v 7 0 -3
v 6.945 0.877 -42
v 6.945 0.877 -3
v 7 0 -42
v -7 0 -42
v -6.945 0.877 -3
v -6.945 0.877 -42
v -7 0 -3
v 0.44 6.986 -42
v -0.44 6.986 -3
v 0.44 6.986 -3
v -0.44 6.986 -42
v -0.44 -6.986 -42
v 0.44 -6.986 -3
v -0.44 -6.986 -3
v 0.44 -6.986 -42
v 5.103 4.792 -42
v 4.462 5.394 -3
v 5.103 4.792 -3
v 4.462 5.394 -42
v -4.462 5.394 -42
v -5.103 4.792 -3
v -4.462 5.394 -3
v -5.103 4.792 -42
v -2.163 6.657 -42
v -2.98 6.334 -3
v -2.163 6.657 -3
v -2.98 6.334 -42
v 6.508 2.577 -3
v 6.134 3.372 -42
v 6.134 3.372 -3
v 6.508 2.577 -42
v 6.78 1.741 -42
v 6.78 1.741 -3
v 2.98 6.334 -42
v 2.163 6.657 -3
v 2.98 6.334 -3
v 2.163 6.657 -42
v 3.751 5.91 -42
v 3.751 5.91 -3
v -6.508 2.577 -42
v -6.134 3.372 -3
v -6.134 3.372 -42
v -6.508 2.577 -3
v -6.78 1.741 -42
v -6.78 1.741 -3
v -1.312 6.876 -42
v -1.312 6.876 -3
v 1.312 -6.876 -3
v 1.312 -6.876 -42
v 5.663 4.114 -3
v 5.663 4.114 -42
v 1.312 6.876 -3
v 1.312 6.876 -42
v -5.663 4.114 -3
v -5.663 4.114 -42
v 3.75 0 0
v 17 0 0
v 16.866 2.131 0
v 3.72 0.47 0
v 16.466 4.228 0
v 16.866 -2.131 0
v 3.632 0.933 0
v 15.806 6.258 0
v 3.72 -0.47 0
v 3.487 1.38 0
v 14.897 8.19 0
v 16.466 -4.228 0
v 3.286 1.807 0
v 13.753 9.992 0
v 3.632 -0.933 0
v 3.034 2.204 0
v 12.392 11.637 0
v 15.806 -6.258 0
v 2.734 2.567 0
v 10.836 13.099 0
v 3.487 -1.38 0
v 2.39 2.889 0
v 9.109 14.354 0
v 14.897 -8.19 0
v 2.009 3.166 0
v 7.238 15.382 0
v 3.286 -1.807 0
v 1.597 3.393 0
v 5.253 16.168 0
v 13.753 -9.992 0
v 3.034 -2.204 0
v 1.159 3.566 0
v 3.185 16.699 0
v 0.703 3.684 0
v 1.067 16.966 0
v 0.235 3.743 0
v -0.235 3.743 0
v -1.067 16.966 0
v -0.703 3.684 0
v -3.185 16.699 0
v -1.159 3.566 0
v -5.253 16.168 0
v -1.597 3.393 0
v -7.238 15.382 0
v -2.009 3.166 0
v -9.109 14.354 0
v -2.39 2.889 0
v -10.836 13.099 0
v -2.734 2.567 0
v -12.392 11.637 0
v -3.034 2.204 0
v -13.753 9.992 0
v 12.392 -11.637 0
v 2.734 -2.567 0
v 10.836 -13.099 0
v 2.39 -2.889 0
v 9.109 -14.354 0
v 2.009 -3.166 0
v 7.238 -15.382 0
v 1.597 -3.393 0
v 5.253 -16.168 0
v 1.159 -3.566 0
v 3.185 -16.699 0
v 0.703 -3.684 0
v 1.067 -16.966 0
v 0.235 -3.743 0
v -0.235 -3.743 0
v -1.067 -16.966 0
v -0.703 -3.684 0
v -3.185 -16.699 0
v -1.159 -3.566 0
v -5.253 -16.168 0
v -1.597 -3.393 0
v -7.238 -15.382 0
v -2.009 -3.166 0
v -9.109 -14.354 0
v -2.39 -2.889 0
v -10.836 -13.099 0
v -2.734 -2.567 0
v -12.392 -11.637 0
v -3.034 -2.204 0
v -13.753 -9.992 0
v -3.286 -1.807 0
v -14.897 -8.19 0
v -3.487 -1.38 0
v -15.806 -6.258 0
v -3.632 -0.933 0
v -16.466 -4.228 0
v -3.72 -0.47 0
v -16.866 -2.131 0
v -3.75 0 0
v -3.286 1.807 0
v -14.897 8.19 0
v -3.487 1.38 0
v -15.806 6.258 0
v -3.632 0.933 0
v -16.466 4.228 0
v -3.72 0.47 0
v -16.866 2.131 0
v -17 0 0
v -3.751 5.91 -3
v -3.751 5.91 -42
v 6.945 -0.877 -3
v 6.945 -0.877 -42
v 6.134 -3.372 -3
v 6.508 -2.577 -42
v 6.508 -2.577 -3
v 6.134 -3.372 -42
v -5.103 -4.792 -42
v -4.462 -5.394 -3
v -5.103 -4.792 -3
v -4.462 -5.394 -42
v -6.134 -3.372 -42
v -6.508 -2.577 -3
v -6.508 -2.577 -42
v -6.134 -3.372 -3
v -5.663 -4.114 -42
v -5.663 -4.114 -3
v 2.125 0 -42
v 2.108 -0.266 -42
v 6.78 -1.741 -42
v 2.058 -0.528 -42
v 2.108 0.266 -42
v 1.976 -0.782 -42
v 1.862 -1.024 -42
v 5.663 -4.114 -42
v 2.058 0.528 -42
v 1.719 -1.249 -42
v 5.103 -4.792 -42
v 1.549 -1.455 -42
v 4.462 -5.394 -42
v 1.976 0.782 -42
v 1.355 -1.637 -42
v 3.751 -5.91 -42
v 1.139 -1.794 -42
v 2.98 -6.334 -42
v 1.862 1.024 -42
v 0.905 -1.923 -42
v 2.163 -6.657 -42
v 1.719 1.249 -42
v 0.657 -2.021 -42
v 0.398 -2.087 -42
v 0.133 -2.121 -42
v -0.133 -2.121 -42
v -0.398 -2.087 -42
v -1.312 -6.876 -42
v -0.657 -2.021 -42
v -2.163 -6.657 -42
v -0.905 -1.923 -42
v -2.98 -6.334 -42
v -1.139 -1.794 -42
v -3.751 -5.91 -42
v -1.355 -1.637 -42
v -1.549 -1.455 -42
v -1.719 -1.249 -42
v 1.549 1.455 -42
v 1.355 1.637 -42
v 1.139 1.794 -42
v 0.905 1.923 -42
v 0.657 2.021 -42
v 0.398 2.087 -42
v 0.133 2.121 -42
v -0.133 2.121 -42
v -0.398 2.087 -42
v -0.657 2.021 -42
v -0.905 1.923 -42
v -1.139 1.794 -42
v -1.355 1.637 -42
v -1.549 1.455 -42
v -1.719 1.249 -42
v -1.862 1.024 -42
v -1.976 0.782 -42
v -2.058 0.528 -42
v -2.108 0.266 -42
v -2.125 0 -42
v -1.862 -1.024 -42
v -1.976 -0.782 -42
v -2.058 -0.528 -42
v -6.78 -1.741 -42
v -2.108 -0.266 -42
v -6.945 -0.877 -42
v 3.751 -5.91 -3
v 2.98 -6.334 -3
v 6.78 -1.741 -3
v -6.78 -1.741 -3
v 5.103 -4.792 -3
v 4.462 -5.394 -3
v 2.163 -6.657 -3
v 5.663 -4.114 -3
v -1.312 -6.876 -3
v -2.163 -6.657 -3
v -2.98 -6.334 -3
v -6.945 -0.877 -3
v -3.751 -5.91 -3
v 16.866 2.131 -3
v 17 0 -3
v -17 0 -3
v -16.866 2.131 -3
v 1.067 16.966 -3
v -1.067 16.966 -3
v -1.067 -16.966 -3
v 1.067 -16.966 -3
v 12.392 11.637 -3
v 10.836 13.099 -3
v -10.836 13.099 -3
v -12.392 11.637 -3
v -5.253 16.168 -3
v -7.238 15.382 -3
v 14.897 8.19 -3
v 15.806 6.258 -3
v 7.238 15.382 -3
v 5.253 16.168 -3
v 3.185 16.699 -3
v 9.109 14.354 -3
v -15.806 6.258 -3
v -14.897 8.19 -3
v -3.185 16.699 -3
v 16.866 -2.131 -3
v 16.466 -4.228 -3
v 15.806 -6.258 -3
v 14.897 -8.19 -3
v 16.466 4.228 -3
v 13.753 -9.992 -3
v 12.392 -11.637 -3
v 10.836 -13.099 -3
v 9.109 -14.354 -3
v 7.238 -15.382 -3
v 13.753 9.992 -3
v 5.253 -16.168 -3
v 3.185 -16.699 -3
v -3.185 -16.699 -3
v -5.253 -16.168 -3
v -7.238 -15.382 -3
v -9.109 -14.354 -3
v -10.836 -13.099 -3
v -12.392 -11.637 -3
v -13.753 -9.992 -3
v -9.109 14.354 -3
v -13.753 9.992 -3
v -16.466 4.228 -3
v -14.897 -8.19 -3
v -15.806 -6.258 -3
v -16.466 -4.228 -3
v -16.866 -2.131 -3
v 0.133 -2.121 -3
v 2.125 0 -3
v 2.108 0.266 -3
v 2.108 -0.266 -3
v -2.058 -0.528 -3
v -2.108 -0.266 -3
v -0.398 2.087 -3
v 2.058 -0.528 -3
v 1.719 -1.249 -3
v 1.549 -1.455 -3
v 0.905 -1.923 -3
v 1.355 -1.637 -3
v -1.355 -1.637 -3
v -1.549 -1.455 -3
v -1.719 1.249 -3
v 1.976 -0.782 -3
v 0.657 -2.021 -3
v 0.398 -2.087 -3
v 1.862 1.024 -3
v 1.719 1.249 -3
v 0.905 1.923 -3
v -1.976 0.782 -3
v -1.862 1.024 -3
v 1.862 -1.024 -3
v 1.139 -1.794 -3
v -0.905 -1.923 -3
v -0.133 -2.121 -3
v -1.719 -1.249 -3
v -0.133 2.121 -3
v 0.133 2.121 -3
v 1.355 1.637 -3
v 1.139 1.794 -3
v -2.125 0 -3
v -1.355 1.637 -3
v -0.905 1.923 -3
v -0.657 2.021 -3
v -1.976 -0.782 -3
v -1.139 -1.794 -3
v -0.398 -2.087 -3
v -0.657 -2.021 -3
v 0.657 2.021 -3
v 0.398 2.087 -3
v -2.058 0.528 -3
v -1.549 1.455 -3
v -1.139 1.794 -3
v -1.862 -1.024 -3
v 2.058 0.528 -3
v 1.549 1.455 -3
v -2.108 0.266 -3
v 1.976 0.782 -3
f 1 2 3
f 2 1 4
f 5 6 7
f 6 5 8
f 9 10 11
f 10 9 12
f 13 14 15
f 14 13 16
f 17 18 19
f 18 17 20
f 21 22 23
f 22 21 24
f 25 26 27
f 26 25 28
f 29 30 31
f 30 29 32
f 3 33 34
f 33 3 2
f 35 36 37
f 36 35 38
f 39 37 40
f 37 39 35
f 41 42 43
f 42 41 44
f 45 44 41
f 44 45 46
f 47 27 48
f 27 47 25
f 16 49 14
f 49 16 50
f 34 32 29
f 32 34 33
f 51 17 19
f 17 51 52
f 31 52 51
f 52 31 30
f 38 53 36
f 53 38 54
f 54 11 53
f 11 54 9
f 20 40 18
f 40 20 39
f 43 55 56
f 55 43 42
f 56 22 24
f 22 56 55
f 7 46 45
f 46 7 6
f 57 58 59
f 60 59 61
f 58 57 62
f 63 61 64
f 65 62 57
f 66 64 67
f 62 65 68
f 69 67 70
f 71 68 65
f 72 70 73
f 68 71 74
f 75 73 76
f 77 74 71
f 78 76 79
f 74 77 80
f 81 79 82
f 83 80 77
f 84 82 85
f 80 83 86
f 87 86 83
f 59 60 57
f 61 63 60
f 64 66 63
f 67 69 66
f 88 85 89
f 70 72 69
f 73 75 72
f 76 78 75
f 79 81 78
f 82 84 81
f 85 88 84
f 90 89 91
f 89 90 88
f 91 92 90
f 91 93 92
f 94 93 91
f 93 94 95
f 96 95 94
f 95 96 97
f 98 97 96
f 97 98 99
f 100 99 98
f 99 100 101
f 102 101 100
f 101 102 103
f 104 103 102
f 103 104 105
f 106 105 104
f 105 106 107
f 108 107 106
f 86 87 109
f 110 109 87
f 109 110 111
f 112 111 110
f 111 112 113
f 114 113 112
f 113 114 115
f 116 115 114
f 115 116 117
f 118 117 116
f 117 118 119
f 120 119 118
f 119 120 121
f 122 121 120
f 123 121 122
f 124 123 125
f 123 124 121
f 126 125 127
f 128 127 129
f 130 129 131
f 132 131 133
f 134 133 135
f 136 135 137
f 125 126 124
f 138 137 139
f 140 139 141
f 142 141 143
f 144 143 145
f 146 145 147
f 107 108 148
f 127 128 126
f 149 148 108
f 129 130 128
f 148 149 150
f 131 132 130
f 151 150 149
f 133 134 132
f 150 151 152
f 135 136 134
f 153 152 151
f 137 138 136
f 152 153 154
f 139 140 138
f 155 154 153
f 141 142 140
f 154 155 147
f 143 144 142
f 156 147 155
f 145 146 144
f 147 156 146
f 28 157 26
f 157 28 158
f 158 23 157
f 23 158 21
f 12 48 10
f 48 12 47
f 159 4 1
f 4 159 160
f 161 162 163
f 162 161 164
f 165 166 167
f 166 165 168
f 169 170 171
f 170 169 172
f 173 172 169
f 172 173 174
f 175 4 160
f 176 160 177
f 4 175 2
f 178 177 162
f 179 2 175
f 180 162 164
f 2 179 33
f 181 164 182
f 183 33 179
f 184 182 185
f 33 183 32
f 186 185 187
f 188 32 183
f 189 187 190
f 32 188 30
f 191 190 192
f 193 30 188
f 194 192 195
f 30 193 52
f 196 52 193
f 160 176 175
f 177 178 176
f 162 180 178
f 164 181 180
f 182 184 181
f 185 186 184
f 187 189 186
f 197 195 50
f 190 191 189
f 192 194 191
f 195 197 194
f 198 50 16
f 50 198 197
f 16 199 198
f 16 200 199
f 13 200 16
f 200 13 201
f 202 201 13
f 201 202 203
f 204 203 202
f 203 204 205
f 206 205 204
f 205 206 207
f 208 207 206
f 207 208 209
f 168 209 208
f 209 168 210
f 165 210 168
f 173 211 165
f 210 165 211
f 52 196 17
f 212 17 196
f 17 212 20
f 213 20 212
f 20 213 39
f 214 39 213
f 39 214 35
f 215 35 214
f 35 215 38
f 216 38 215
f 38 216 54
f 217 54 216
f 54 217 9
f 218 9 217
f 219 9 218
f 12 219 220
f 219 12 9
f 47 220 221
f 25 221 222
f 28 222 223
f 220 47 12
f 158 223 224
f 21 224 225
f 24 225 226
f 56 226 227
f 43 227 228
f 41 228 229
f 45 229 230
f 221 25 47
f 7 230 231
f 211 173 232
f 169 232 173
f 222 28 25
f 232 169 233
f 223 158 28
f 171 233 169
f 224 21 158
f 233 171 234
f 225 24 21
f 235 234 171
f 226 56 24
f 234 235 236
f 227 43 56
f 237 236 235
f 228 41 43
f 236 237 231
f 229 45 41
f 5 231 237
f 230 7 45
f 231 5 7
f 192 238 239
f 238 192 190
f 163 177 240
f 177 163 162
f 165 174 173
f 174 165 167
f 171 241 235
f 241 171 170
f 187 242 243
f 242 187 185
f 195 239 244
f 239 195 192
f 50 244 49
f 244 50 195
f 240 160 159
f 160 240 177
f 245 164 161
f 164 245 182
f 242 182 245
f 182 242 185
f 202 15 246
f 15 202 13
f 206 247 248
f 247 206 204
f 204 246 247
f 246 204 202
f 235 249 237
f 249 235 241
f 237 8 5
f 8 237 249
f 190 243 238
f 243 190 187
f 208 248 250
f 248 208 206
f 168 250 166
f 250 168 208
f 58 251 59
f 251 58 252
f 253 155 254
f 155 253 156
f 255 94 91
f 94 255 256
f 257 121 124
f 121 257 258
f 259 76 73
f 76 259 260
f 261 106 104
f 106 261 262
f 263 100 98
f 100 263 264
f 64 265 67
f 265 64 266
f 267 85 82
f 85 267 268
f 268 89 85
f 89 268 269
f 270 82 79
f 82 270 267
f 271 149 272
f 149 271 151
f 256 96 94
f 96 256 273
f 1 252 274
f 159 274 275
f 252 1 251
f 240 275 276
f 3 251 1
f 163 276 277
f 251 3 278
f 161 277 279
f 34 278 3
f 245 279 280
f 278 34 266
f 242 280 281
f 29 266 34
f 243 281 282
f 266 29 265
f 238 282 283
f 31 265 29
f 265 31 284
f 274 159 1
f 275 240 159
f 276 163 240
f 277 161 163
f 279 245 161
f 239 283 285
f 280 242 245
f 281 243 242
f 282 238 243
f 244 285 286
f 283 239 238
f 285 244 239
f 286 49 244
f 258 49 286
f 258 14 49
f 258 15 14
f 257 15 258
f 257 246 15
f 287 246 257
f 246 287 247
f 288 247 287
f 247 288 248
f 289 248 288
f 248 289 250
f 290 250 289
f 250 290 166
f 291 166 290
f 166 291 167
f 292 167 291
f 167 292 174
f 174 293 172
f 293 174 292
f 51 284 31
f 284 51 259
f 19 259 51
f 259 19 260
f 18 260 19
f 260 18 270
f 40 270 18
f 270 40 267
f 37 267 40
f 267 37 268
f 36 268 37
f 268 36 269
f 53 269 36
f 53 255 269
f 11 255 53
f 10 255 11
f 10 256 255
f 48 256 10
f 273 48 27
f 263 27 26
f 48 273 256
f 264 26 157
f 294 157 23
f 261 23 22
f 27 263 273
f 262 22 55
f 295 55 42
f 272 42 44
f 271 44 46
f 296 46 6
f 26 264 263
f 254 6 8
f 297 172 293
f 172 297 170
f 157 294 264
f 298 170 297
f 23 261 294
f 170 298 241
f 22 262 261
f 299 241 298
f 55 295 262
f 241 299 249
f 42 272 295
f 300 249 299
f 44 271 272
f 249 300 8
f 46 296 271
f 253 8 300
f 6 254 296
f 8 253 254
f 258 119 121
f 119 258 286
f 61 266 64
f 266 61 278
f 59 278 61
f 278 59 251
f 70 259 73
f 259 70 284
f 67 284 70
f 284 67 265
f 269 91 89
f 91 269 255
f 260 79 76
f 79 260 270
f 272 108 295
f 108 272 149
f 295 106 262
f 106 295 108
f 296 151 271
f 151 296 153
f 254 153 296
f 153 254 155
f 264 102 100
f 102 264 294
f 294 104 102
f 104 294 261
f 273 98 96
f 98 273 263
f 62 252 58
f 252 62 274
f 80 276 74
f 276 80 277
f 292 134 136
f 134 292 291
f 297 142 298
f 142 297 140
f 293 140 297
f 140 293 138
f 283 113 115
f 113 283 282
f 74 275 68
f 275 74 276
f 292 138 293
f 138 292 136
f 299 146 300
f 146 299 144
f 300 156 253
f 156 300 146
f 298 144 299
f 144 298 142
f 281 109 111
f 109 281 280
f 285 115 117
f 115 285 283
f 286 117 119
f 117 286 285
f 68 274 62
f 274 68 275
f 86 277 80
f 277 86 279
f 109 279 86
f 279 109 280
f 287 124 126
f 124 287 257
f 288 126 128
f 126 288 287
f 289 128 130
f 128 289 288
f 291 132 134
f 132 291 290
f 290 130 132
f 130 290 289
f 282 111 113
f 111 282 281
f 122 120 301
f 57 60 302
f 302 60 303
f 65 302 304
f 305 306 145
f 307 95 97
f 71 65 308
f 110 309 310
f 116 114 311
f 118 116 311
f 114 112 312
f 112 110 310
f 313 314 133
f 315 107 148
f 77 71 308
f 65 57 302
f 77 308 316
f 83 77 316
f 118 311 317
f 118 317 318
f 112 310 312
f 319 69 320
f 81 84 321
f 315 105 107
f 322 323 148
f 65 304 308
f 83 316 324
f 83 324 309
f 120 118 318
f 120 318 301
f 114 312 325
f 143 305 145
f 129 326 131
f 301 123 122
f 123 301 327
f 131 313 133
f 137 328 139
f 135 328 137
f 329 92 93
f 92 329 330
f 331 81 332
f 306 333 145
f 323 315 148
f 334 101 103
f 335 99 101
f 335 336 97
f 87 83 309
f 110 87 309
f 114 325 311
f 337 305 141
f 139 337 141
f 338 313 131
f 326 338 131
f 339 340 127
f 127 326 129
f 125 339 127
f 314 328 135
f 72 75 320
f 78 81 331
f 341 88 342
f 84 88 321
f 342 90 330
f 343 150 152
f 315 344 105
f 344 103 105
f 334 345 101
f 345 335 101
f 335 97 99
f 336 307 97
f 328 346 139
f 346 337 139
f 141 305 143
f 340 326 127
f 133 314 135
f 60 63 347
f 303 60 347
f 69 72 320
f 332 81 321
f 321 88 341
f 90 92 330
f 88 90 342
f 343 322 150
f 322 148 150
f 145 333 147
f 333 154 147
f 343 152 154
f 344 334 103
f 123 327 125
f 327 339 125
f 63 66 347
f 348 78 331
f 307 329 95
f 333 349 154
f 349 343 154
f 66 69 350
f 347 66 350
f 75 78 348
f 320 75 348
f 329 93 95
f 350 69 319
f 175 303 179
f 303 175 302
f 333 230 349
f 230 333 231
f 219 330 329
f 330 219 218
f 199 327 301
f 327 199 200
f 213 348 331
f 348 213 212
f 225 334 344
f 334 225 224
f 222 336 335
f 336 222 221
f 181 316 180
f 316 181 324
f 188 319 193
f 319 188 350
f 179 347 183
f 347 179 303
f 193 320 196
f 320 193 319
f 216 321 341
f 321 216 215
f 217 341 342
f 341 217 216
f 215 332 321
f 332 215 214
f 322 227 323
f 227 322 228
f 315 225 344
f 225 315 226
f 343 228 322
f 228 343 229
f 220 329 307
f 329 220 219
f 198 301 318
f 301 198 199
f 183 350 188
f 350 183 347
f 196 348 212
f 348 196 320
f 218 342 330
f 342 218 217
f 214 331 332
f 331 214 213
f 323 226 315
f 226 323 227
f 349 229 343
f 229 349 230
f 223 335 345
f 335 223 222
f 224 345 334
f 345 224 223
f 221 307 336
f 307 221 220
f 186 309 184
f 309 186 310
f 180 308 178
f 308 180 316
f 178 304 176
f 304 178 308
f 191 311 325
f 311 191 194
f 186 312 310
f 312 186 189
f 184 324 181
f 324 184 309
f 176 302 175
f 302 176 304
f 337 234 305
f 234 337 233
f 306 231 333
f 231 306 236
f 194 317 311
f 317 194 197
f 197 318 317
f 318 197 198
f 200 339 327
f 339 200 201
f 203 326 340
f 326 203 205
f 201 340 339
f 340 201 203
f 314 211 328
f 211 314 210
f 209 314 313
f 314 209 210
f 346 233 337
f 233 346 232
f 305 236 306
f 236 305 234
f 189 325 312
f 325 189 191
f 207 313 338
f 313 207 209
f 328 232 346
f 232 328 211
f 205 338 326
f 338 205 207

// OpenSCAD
$fn = 50;


difference() {
	union() {
		translate(v = [0, 0, -42.0000000000]) {
			cylinder(h = 42, r = 7.0000000000);
		}
		translate(v = [0, 0, -3.0000000000]) {
			cylinder(h = 3, r = 17.0000000000);
		}
	}
	union() {
		translate(v = [0, 0, 0]) {
			rotate(a = [0, 0, 0]) {
				difference() {
					union() {
						#translate(v = [0, 0, -42.0000000000]) {
							cylinder(h = 42, r = 2.0000000000);
						}
						#translate(v = [0, 0, -3]) {
							cylinder(h = 3, r = 7.0000000000, r1 = 2.1250000000, r2 = 3.7500000000);
						}
						#translate(v = [0, 0, -42.0000000000]) {
							cylinder(h = 42, r = 2.1250000000);
						}
						#translate(v = [0, 0, -42.0000000000]) {
							cylinder(h = 42, r = 2.0000000000);
						}
					}
					union();
				}
			}
		}
	}
}
